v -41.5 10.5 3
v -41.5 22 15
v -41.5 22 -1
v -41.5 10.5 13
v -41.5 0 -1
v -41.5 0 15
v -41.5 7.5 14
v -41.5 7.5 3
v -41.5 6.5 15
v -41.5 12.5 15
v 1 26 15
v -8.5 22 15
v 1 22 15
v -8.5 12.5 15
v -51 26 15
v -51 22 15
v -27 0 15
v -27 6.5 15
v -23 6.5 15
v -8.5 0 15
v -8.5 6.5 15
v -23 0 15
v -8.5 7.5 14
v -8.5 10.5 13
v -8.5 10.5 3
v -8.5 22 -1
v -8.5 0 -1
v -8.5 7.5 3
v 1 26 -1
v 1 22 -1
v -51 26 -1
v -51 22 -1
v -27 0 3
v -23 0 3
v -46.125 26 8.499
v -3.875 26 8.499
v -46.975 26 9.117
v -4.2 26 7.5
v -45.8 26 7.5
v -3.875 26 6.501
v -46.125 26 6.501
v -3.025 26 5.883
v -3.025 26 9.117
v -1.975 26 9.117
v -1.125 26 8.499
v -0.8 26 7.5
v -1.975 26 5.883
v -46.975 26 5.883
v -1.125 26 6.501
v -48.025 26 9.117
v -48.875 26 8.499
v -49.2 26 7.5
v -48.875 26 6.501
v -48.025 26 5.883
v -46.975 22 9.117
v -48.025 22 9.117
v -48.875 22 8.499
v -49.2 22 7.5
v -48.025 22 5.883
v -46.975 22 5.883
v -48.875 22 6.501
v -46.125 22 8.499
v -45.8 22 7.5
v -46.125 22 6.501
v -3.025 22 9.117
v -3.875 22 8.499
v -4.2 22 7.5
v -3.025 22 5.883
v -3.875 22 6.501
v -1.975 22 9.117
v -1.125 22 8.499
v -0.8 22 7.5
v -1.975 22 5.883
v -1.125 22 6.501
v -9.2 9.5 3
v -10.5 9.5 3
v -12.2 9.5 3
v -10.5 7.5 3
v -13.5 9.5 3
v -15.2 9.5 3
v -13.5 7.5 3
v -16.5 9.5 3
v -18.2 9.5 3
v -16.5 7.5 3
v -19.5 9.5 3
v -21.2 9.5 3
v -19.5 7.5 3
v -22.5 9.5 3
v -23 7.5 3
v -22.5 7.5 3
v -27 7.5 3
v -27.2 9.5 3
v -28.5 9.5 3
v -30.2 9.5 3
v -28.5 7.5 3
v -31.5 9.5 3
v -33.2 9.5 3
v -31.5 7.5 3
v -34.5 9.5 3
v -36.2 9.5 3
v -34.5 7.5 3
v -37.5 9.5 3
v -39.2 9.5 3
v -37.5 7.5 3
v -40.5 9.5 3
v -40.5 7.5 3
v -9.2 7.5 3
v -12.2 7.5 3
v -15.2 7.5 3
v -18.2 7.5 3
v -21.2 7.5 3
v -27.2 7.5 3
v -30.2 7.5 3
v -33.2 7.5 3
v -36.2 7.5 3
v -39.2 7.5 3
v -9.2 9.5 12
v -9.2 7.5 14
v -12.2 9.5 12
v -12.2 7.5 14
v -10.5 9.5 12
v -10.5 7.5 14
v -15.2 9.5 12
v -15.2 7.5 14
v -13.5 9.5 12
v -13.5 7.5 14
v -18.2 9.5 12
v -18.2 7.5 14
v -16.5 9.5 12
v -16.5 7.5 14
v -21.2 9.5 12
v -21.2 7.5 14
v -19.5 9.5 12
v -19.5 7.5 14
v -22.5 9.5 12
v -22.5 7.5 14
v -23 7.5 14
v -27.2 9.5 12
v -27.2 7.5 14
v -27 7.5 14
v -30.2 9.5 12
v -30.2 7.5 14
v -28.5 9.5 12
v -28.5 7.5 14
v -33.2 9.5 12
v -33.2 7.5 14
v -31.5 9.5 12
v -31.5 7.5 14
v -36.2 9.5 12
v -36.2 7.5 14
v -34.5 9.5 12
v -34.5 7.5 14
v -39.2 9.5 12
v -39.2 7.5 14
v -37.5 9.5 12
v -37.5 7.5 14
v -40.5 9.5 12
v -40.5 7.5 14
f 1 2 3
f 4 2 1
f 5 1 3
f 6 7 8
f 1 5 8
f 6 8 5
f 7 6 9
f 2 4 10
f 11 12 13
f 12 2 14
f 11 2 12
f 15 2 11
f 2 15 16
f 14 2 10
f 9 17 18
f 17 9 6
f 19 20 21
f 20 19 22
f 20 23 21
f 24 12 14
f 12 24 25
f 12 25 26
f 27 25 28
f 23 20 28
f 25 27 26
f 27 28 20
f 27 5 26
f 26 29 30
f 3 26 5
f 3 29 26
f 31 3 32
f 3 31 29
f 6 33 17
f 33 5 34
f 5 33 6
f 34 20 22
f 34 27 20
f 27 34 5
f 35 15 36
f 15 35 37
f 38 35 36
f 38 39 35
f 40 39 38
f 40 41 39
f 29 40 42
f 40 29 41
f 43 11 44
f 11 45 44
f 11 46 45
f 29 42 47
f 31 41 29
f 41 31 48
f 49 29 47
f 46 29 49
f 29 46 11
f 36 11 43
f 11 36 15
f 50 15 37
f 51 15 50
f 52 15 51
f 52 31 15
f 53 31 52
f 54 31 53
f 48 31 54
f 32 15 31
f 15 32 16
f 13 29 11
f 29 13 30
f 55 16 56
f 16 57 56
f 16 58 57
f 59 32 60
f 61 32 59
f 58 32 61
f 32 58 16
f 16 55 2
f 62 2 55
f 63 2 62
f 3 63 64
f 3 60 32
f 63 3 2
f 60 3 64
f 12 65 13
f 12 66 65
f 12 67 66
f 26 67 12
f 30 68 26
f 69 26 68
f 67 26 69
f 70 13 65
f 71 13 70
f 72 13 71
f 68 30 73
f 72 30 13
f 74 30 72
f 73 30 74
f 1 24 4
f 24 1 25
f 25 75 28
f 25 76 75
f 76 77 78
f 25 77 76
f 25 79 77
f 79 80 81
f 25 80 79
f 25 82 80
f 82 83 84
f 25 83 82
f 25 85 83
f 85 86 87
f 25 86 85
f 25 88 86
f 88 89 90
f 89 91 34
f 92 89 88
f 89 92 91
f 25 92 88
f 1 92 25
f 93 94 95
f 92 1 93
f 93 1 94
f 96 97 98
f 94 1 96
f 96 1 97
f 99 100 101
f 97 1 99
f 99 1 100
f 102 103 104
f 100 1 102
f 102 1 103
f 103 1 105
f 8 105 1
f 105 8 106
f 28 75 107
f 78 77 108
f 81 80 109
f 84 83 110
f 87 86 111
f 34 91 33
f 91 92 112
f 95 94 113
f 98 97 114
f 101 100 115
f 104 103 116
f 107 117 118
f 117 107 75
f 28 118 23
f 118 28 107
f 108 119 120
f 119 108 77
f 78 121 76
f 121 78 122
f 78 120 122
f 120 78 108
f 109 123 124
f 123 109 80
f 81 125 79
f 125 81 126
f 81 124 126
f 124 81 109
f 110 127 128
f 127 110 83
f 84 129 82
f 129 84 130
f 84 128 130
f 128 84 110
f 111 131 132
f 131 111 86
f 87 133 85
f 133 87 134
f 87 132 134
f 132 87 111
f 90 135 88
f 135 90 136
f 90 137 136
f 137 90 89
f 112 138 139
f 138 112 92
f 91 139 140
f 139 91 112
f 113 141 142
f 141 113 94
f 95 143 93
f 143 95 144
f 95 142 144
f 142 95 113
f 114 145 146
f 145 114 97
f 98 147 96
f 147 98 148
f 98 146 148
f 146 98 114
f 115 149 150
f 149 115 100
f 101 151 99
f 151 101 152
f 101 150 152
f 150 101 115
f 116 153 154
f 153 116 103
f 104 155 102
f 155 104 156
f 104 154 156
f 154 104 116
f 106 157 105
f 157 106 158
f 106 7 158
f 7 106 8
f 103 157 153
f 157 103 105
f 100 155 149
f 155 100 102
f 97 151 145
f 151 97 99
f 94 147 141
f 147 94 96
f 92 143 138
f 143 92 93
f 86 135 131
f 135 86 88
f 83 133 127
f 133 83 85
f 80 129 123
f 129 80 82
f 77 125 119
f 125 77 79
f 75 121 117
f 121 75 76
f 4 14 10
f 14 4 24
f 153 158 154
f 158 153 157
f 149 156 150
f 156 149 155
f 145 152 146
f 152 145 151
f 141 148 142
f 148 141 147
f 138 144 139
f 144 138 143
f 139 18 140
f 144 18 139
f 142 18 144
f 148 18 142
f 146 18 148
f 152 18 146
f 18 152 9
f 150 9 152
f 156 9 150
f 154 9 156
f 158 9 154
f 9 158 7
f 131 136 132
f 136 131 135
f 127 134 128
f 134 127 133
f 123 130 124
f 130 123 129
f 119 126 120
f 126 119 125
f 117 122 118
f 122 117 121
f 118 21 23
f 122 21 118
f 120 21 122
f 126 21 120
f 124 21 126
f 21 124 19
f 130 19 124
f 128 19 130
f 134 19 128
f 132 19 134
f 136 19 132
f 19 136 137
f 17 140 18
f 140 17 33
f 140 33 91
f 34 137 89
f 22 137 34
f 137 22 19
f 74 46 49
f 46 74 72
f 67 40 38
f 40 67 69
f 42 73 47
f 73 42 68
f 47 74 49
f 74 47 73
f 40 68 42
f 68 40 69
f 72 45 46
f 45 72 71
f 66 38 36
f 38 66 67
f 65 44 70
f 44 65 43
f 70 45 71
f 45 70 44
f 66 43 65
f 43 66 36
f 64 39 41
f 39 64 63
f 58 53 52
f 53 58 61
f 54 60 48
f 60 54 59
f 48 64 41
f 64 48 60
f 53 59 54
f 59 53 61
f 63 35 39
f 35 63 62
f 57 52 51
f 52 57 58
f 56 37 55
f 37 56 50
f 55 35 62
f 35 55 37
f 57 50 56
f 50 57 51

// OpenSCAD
//Stallman 3D printer
// Y belt holder
// Used to attach endstops to 8mm rods
// GNU GPL v3

//Derived from:
// PRUSA iteration 3 Y belt holder GNU GPL v3 Josef Průša <iam@josefprusa.cz> and contributors http://www.reprap.org/wiki/Prusa_Mendel http://prusamendel.org


module belt_holder_base(){
 translate([-33-8.5,0,-1]) cube([33,15,16]); 
 translate([-33-8.5,11,-1]) cube([33,15,16]);
 translate([-51,22,-1]) cube([52,4,16]);	
}

module belt_holder_beltcut(){
 position_tweak=-0.2;
 // Belt slit
 translate([-66,-0.5+10,3]) cube([67,1,15]);
 // Smooth insert cutout
 translate([-66,-0.5+10,12]) rotate([45,0,0]) cube([67,15,15]);
 // Individual teeth
 for ( i = [0 : 23] ){
  translate([0-i*3+position_tweak,-0.5+8,3]) cube([1.7,3,15]);
 }
 // Middle opening
 translate([-2-25,-1,3]) cube([4,11,15]);	
}

module belt_holder_holes(){
 translate([-2.5,0,7.5]) rotate([-90,0,0]) cylinder(h=30, r=1.7, $fn=10);
 translate([-47.5,0,7.5]) rotate([-90,0,0]) cylinder(h=30, r=1.7, $fn=10);
}

// Final part
module belt_holder(){
 difference(){
  belt_holder_base();
  belt_holder_beltcut();
  belt_holder_holes();
 }
}

belt_holder();
